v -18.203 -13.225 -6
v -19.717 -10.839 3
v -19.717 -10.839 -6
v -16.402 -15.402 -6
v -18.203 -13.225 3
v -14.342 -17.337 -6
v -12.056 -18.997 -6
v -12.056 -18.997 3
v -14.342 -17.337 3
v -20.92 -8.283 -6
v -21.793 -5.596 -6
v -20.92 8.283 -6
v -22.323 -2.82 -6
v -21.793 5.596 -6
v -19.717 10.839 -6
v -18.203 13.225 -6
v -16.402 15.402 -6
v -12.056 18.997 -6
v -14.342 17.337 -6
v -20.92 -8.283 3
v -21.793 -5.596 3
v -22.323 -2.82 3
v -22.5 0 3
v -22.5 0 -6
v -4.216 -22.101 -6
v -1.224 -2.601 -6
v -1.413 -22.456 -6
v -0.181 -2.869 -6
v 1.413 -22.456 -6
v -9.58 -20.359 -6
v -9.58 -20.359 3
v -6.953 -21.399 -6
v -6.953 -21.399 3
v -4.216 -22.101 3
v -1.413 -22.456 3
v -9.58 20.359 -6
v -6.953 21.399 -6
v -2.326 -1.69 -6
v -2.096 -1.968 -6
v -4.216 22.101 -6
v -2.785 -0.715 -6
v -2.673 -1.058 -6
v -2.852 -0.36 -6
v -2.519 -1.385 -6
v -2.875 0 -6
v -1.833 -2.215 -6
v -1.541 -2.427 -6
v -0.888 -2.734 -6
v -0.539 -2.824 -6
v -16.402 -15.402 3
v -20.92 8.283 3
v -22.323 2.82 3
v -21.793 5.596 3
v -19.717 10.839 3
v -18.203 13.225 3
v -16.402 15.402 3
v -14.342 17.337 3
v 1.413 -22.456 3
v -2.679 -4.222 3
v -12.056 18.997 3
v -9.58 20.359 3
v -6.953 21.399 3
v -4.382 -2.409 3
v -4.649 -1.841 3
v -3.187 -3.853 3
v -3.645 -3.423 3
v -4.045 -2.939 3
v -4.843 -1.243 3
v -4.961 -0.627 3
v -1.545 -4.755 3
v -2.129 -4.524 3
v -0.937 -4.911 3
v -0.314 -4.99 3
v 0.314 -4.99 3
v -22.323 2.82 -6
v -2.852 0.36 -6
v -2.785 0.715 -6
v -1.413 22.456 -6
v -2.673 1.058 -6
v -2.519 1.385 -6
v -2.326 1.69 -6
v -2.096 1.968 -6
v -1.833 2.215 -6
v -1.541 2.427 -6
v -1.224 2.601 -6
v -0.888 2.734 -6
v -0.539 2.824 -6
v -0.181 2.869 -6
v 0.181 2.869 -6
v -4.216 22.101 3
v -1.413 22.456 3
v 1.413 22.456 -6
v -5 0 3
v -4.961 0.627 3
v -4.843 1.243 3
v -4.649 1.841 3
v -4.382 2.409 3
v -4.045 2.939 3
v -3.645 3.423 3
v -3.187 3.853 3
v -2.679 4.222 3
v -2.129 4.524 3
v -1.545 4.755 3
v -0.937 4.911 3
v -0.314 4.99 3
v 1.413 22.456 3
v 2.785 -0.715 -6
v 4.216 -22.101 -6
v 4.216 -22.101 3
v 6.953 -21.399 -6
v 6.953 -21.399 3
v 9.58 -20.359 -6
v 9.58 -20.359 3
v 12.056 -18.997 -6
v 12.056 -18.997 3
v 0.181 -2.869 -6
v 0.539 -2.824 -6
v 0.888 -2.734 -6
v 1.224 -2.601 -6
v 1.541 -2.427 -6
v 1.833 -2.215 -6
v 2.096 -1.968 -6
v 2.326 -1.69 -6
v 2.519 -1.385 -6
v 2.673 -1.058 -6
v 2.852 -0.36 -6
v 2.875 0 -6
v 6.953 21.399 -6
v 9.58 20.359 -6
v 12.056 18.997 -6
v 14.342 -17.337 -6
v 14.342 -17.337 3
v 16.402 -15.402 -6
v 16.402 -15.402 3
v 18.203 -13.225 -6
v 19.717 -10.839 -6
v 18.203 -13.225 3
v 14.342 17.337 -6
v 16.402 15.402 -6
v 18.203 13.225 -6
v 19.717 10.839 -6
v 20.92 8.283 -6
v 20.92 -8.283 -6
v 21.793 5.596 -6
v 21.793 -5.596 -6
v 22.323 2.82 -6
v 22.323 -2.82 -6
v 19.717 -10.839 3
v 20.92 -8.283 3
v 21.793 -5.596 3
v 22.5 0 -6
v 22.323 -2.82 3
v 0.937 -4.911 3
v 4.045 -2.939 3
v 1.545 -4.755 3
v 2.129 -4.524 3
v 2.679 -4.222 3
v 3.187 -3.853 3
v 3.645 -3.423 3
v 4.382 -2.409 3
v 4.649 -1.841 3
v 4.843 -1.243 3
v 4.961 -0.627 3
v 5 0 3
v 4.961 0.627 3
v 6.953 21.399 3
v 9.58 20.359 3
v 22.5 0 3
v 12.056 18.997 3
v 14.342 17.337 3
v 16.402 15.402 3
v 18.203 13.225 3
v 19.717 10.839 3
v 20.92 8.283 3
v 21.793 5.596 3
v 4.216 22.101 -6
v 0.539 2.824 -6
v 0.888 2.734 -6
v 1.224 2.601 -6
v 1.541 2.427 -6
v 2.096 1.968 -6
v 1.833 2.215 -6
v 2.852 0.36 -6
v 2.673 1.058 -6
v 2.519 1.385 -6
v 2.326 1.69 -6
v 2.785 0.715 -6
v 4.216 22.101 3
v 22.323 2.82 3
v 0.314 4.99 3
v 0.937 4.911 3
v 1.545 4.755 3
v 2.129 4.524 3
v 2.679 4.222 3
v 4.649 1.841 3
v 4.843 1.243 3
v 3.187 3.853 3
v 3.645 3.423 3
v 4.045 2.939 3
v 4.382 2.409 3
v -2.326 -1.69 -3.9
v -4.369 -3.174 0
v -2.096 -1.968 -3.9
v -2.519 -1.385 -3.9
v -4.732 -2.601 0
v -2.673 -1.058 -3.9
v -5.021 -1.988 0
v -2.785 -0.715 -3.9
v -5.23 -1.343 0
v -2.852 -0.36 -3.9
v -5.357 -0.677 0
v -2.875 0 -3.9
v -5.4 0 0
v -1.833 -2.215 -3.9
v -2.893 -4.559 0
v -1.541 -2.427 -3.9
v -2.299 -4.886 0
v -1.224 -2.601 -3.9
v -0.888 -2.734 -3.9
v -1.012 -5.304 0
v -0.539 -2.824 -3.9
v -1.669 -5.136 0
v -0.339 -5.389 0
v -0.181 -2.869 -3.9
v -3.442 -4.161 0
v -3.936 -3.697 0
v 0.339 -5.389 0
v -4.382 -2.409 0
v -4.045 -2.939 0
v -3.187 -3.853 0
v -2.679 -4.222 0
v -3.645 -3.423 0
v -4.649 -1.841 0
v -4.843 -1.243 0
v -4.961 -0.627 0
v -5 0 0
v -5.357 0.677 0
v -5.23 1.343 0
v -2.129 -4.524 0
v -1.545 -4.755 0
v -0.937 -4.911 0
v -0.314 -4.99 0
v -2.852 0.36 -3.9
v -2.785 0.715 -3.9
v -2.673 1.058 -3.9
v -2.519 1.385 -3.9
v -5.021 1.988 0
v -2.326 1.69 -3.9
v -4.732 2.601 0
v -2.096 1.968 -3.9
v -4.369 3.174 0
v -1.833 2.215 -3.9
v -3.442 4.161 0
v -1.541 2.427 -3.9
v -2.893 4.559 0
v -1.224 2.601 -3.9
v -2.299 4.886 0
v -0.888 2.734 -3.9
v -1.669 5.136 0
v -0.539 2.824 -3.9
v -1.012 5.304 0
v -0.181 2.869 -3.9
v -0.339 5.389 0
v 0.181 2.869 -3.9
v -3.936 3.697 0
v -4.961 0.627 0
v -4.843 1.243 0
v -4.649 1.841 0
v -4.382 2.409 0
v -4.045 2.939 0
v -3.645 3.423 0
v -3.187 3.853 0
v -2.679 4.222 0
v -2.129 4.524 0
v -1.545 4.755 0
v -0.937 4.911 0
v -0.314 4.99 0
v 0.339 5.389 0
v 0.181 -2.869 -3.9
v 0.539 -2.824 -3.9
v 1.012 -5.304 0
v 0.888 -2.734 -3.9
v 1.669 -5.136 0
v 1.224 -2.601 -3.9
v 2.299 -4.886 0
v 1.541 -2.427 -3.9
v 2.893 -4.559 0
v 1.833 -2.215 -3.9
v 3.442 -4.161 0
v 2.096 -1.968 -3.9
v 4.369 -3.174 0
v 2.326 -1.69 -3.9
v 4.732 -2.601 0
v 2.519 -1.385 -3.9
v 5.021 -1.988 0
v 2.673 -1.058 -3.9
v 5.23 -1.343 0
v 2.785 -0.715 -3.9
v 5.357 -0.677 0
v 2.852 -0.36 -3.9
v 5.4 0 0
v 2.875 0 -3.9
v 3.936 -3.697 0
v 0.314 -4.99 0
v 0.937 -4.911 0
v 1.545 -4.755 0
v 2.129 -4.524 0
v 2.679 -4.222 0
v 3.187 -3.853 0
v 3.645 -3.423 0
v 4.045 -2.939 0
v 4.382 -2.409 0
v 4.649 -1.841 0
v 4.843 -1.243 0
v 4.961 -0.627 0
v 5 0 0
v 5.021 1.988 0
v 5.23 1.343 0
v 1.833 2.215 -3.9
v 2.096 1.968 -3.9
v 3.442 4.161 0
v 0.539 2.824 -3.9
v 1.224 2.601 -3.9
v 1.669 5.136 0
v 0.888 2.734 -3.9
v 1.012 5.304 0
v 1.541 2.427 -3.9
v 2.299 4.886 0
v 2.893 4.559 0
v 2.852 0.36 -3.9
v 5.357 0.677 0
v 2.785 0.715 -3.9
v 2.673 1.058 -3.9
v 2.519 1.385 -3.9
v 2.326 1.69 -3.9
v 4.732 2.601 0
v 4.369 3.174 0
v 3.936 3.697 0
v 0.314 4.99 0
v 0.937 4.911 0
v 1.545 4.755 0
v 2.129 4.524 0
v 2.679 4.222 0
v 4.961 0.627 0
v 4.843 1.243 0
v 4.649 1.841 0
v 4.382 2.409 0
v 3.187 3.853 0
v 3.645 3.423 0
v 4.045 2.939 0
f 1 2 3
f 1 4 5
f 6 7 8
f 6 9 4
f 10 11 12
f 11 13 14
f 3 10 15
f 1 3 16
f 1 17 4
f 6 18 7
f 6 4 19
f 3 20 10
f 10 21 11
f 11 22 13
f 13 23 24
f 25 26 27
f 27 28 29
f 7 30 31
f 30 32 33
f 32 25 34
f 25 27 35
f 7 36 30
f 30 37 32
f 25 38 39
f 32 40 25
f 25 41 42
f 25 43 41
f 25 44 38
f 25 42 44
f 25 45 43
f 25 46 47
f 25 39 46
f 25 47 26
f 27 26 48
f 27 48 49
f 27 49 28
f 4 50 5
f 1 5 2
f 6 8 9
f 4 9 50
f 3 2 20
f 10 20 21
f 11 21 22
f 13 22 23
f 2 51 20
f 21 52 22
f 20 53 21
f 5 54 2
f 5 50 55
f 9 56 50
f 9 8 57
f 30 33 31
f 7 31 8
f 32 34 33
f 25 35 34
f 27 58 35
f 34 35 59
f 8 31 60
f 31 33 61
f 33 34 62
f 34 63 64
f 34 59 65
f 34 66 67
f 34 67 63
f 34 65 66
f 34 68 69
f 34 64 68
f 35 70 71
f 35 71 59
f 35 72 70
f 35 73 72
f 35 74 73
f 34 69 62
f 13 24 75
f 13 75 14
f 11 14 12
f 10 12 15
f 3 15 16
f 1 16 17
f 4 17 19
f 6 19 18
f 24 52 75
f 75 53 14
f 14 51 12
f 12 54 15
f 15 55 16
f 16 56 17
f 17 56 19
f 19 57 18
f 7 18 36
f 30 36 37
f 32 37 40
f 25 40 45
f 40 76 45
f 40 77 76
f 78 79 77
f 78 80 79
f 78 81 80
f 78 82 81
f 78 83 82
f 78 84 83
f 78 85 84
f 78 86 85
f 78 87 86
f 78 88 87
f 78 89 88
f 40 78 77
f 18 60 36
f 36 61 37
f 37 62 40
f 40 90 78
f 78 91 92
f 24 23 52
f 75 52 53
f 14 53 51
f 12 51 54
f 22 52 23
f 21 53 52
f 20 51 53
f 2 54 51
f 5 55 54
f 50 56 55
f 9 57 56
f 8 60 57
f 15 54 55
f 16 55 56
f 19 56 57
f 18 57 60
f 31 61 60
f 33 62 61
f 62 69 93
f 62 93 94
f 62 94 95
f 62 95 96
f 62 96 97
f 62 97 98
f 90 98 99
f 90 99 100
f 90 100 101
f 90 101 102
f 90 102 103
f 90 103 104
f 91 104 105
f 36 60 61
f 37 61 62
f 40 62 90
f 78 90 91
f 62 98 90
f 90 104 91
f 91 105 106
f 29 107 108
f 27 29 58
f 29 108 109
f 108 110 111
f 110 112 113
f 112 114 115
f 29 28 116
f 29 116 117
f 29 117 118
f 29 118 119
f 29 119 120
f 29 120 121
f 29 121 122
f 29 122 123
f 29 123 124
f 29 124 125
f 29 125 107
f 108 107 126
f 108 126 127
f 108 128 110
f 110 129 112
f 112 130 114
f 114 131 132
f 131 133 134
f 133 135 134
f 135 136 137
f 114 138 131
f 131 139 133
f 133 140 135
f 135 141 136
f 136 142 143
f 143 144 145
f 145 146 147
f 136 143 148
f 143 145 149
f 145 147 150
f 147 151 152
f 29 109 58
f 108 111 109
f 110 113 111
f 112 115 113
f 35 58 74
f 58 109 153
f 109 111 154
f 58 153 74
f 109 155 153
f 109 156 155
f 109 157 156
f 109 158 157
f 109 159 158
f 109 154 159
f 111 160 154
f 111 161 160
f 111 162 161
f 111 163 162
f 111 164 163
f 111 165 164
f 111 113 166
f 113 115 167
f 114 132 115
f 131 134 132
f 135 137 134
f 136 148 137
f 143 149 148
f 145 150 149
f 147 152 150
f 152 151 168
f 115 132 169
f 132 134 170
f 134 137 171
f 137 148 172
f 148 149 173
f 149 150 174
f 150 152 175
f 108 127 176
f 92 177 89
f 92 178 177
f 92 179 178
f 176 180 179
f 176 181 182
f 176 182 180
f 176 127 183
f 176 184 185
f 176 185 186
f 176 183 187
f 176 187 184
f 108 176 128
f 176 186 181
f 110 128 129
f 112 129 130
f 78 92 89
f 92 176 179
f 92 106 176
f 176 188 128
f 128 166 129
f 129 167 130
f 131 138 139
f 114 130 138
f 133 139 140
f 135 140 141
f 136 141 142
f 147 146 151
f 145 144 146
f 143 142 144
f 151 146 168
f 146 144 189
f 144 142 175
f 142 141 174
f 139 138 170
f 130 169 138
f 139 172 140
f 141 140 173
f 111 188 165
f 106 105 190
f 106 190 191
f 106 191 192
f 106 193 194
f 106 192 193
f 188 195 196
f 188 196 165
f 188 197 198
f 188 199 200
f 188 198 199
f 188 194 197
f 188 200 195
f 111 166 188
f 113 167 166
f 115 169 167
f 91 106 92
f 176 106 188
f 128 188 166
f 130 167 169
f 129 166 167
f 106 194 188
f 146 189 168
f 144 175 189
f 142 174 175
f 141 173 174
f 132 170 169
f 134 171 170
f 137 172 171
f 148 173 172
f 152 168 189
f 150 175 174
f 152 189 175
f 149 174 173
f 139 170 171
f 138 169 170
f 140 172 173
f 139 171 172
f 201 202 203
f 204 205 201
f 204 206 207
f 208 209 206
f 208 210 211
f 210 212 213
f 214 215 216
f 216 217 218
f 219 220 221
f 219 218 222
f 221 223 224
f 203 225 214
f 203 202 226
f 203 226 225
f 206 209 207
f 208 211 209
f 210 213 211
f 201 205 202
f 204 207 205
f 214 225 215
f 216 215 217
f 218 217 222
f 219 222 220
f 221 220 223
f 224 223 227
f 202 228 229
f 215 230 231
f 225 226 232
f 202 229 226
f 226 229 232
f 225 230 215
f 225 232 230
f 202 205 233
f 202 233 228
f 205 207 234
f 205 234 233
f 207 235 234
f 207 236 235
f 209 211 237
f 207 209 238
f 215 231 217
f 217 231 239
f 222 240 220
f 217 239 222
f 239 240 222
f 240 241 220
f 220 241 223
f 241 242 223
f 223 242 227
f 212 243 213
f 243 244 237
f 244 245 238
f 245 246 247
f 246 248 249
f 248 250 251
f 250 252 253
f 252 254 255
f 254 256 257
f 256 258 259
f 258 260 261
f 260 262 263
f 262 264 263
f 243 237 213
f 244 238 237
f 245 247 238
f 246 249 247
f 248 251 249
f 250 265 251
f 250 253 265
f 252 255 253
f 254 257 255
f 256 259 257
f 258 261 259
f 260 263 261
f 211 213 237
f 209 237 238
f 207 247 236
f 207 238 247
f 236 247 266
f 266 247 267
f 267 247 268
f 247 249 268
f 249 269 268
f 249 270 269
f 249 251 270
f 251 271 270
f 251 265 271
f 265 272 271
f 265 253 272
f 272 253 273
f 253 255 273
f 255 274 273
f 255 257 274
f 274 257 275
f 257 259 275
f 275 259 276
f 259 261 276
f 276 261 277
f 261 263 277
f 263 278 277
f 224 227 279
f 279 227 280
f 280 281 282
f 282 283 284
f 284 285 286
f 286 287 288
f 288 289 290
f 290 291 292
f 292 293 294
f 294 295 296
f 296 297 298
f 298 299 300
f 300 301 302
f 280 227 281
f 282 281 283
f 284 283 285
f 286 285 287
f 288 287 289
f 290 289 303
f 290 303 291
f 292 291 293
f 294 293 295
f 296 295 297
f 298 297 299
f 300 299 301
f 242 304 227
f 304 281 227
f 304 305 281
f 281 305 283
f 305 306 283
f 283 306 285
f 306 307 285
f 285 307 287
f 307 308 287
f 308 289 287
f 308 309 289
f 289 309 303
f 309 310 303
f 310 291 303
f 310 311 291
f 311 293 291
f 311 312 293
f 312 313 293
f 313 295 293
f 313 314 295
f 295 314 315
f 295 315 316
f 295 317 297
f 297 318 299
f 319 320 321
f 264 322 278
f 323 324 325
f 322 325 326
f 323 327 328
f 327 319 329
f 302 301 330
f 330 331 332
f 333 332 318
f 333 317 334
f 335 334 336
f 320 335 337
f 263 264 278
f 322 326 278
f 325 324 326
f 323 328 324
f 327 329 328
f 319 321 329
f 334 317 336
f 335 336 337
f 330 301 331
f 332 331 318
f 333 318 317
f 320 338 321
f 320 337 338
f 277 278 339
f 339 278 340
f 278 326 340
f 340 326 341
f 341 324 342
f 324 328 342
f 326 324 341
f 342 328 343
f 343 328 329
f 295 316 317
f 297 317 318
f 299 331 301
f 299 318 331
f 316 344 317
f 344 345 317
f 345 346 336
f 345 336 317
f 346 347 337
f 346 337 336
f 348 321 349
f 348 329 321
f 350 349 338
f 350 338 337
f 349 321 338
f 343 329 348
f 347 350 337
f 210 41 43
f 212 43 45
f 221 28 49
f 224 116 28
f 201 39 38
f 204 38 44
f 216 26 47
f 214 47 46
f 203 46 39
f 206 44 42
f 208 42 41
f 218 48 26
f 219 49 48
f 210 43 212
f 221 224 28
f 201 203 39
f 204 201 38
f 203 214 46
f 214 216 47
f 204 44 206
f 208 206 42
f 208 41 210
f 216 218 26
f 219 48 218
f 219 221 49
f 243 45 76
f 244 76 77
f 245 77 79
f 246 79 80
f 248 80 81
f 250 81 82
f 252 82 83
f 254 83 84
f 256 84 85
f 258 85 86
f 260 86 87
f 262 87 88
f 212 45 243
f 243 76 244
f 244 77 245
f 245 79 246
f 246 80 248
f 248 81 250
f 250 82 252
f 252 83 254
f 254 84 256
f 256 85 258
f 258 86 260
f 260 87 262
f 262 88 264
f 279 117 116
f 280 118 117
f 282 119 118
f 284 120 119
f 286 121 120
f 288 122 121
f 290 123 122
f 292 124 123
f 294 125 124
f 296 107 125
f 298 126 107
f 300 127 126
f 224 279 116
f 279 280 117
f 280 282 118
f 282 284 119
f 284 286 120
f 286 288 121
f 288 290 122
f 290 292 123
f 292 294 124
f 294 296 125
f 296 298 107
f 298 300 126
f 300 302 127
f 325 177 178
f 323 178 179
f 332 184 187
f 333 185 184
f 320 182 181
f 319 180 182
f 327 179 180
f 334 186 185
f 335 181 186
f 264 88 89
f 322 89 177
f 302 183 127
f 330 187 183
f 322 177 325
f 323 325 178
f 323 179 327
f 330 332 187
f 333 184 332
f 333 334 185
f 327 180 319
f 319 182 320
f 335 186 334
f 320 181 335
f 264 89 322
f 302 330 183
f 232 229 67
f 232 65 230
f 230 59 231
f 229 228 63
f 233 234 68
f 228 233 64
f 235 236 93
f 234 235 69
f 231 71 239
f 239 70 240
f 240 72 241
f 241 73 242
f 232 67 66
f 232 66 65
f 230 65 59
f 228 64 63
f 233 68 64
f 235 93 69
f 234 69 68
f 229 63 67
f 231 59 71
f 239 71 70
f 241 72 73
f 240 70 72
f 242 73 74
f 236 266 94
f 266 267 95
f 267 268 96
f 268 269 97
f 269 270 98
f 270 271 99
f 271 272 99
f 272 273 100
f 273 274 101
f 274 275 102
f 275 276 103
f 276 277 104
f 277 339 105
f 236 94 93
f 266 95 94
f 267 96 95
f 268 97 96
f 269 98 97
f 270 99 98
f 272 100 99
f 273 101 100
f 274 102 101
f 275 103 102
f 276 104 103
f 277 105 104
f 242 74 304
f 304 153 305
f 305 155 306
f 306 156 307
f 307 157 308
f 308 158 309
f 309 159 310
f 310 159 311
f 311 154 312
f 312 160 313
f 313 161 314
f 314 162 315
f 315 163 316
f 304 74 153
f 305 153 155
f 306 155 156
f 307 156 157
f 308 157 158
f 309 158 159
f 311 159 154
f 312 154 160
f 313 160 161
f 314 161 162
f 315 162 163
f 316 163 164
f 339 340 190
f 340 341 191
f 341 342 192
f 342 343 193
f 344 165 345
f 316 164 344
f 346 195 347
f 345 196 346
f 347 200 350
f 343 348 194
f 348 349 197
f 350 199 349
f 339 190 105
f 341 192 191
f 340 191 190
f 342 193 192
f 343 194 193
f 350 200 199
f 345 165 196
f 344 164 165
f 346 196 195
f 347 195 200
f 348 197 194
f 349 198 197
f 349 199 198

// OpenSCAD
$fn = 50;


difference() {
	union() {
		translate(v = [0, 0, -6.0000000000]) {
			cylinder(h = 9, r = 22.5000000000);
		}
		#translate(v = [0, 0, -9.0000000000]) {
			cylinder(h = 9, r = 2.8750000000);
		}
	}
	union() {
		translate(v = [0, 0, 0]) {
			rotate(a = [0, 0, 0]) {
				difference() {
					union() {
						translate(v = [0, 0, -9.0000000000]) {
							cylinder(h = 9, r = 2.6000000000);
						}
						translate(v = [0, 0, -3.9000000000]) {
							cylinder(h = 3.9000000000, r1 = 2.8750000000, r2 = 5.4000000000);
						}
						translate(v = [0, 0, -9.0000000000]) {
							cylinder(h = 9, r = 2.8750000000);
						}
						translate(v = [0, 0, -9.0000000000]) {
							cylinder(h = 9, r = 2.6000000000);
						}
					}
					union();
				}
			}
		}
		#cylinder(h = 3, r = 5.0000000000);
	}
}
